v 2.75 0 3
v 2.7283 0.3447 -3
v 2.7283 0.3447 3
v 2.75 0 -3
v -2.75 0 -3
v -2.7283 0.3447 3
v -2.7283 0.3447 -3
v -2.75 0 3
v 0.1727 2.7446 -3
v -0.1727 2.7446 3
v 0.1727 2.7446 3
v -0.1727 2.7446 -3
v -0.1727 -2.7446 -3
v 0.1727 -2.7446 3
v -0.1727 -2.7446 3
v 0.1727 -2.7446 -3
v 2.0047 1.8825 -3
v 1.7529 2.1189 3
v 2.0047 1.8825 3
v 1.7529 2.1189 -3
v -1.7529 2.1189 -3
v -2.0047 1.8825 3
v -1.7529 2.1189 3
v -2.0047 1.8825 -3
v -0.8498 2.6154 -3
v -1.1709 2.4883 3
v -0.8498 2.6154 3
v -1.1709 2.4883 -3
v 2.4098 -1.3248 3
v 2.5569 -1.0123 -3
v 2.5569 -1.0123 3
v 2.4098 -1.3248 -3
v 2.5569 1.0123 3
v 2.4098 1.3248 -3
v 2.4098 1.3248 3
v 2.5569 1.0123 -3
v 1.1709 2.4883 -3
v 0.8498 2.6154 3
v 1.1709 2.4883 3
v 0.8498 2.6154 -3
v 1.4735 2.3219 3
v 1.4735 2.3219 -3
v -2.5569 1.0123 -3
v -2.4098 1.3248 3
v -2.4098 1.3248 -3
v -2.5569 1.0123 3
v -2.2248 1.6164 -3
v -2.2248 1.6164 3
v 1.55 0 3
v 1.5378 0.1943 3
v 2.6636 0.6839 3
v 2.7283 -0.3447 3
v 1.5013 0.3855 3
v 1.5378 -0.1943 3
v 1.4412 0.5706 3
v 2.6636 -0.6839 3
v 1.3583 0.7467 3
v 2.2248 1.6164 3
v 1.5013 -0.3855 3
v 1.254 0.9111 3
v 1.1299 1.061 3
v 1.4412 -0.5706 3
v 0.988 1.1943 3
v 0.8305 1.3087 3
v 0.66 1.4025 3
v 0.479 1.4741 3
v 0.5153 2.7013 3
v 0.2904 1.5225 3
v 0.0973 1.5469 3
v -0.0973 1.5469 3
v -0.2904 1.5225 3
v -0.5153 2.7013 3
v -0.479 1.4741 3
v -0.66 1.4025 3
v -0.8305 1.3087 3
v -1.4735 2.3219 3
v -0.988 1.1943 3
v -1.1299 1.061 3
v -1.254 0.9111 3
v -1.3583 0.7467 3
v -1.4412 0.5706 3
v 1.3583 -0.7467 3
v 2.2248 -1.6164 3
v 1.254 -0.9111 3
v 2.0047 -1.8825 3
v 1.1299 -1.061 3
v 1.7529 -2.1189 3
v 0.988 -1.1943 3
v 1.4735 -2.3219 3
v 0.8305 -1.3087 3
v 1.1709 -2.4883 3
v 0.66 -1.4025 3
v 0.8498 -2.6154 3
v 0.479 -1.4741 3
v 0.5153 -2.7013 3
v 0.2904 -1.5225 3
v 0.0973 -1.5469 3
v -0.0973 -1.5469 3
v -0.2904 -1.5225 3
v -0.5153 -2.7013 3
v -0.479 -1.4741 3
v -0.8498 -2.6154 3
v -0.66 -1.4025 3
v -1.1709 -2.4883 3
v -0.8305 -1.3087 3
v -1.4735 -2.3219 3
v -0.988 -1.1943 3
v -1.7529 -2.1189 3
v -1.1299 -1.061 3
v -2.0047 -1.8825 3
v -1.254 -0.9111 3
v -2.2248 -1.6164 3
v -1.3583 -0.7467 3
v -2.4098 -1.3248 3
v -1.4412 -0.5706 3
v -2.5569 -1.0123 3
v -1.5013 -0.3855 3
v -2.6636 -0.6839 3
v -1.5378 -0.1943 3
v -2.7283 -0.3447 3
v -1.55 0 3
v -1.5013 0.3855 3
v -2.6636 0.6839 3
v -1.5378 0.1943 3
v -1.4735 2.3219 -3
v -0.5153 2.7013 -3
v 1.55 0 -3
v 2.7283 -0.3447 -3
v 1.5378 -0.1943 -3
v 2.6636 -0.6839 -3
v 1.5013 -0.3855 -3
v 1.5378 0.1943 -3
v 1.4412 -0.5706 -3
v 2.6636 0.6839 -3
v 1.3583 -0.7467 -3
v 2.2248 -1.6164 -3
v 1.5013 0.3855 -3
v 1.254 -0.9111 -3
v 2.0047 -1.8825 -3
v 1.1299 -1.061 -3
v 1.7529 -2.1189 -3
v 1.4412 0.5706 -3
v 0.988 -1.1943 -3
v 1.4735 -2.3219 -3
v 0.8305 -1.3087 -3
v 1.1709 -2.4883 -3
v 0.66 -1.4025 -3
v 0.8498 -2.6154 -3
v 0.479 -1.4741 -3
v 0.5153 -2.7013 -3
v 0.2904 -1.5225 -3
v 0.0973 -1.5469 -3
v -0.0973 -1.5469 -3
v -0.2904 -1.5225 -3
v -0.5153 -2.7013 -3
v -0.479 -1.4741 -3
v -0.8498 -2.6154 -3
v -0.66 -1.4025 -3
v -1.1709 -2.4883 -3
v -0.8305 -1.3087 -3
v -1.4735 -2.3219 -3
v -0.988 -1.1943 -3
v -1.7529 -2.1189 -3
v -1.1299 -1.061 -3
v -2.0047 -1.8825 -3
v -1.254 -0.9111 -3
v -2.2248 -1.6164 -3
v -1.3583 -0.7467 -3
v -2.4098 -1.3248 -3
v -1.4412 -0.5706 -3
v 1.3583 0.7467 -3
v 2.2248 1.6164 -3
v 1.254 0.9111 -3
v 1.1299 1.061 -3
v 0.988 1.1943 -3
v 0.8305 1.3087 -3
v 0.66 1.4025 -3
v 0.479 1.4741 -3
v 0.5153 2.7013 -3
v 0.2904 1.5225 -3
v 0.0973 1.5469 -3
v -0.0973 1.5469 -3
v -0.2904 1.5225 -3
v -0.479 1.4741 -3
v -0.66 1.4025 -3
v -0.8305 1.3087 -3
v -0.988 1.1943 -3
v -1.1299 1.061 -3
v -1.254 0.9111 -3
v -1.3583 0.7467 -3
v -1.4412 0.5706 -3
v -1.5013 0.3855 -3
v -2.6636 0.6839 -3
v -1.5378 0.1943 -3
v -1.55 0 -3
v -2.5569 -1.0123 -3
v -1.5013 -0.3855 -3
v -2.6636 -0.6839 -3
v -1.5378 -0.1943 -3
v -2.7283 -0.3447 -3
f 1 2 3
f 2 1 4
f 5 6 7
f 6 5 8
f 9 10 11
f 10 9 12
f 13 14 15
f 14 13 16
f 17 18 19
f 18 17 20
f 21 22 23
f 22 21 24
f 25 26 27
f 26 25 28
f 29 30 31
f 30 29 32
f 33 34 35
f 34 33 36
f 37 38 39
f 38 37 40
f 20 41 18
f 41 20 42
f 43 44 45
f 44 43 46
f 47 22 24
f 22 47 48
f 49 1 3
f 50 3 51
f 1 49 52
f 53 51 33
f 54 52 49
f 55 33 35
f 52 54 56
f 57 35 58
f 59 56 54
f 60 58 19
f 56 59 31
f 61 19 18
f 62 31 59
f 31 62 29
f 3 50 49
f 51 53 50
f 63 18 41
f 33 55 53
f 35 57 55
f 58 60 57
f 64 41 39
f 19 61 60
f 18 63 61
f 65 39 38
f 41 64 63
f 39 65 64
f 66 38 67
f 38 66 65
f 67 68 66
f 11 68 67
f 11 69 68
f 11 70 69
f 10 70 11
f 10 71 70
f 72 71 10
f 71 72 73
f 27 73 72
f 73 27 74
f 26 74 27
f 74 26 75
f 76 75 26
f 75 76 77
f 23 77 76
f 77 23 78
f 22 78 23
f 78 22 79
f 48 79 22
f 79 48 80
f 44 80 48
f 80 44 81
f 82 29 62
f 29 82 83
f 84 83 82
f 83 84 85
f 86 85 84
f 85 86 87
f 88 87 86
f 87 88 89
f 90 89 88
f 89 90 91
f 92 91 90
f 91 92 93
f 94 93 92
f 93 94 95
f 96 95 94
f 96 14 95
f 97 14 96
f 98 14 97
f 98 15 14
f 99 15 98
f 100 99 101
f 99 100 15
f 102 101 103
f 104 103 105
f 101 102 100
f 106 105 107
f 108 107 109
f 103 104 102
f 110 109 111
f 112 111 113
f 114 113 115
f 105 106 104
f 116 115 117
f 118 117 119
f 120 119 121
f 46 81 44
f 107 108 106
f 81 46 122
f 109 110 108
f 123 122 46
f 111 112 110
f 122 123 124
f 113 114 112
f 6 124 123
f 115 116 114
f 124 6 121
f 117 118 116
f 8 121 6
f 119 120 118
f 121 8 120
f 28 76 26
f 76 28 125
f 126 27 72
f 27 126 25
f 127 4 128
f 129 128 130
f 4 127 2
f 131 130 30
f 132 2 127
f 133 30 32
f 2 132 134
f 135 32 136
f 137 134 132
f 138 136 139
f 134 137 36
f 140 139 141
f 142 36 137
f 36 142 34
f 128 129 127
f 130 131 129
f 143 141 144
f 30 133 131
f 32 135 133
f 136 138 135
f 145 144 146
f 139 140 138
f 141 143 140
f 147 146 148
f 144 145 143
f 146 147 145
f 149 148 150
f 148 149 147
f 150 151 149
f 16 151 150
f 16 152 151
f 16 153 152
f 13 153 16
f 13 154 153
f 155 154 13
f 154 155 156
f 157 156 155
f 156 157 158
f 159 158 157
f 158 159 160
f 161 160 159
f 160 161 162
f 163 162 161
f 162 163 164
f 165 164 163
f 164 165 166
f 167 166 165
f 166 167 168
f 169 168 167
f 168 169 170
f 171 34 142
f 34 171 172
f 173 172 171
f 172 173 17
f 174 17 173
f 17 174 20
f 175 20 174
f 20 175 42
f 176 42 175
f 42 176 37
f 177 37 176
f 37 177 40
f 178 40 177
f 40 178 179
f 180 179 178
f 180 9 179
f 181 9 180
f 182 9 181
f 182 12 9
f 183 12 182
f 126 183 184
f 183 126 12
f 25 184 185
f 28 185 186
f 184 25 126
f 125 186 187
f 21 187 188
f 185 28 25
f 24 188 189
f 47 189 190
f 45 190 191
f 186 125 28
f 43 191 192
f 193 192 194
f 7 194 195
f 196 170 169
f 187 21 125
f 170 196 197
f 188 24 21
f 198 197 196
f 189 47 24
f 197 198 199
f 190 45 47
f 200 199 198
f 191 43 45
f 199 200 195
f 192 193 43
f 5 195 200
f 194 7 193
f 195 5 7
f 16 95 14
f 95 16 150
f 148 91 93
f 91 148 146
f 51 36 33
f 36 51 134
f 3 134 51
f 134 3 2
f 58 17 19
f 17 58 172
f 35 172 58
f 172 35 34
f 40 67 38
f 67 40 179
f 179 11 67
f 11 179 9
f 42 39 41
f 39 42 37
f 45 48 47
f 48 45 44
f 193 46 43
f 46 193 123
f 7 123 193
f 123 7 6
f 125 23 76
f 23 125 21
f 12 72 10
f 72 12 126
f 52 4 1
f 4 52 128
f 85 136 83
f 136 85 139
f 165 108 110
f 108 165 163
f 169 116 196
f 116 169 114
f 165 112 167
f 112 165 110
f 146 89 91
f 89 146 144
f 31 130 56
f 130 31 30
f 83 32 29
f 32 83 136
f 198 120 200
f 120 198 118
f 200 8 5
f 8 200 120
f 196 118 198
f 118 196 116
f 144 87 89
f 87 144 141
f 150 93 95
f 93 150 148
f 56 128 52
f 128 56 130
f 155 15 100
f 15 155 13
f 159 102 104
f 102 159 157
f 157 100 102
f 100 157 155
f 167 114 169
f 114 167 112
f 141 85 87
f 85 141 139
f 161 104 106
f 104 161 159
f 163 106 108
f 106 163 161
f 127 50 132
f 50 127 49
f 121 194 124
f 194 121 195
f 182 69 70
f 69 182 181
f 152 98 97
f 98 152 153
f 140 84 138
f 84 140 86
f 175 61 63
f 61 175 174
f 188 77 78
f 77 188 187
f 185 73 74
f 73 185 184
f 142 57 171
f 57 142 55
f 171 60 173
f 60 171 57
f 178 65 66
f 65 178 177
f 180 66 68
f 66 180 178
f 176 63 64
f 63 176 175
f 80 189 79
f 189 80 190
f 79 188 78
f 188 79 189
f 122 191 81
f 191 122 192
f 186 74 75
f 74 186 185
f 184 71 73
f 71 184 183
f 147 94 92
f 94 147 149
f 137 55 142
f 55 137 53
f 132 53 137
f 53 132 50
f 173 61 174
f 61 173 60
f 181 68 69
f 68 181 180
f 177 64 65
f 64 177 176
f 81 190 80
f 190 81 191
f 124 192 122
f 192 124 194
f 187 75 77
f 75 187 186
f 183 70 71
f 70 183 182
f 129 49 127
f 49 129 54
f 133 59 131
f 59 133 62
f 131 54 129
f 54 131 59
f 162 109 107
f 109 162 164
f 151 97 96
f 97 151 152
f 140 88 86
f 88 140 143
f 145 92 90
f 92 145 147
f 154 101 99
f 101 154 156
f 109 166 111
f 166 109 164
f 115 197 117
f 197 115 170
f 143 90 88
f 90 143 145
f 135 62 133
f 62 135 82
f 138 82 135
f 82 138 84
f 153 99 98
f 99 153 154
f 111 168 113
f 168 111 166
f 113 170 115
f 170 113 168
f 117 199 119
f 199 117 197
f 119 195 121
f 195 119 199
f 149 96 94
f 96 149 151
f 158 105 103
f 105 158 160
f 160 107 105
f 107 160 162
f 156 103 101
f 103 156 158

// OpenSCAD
$fn = 50;


difference() {
	union() {
		translate(v = [0, 0, -3.0000000000]) {
			cylinder(h = 6, r = 2.7500000000);
		}
	}
	union() {
		translate(v = [0, 0, -100.0000000000]) {
			cylinder(h = 200, r = 1.5500000000);
		}
	}
}
